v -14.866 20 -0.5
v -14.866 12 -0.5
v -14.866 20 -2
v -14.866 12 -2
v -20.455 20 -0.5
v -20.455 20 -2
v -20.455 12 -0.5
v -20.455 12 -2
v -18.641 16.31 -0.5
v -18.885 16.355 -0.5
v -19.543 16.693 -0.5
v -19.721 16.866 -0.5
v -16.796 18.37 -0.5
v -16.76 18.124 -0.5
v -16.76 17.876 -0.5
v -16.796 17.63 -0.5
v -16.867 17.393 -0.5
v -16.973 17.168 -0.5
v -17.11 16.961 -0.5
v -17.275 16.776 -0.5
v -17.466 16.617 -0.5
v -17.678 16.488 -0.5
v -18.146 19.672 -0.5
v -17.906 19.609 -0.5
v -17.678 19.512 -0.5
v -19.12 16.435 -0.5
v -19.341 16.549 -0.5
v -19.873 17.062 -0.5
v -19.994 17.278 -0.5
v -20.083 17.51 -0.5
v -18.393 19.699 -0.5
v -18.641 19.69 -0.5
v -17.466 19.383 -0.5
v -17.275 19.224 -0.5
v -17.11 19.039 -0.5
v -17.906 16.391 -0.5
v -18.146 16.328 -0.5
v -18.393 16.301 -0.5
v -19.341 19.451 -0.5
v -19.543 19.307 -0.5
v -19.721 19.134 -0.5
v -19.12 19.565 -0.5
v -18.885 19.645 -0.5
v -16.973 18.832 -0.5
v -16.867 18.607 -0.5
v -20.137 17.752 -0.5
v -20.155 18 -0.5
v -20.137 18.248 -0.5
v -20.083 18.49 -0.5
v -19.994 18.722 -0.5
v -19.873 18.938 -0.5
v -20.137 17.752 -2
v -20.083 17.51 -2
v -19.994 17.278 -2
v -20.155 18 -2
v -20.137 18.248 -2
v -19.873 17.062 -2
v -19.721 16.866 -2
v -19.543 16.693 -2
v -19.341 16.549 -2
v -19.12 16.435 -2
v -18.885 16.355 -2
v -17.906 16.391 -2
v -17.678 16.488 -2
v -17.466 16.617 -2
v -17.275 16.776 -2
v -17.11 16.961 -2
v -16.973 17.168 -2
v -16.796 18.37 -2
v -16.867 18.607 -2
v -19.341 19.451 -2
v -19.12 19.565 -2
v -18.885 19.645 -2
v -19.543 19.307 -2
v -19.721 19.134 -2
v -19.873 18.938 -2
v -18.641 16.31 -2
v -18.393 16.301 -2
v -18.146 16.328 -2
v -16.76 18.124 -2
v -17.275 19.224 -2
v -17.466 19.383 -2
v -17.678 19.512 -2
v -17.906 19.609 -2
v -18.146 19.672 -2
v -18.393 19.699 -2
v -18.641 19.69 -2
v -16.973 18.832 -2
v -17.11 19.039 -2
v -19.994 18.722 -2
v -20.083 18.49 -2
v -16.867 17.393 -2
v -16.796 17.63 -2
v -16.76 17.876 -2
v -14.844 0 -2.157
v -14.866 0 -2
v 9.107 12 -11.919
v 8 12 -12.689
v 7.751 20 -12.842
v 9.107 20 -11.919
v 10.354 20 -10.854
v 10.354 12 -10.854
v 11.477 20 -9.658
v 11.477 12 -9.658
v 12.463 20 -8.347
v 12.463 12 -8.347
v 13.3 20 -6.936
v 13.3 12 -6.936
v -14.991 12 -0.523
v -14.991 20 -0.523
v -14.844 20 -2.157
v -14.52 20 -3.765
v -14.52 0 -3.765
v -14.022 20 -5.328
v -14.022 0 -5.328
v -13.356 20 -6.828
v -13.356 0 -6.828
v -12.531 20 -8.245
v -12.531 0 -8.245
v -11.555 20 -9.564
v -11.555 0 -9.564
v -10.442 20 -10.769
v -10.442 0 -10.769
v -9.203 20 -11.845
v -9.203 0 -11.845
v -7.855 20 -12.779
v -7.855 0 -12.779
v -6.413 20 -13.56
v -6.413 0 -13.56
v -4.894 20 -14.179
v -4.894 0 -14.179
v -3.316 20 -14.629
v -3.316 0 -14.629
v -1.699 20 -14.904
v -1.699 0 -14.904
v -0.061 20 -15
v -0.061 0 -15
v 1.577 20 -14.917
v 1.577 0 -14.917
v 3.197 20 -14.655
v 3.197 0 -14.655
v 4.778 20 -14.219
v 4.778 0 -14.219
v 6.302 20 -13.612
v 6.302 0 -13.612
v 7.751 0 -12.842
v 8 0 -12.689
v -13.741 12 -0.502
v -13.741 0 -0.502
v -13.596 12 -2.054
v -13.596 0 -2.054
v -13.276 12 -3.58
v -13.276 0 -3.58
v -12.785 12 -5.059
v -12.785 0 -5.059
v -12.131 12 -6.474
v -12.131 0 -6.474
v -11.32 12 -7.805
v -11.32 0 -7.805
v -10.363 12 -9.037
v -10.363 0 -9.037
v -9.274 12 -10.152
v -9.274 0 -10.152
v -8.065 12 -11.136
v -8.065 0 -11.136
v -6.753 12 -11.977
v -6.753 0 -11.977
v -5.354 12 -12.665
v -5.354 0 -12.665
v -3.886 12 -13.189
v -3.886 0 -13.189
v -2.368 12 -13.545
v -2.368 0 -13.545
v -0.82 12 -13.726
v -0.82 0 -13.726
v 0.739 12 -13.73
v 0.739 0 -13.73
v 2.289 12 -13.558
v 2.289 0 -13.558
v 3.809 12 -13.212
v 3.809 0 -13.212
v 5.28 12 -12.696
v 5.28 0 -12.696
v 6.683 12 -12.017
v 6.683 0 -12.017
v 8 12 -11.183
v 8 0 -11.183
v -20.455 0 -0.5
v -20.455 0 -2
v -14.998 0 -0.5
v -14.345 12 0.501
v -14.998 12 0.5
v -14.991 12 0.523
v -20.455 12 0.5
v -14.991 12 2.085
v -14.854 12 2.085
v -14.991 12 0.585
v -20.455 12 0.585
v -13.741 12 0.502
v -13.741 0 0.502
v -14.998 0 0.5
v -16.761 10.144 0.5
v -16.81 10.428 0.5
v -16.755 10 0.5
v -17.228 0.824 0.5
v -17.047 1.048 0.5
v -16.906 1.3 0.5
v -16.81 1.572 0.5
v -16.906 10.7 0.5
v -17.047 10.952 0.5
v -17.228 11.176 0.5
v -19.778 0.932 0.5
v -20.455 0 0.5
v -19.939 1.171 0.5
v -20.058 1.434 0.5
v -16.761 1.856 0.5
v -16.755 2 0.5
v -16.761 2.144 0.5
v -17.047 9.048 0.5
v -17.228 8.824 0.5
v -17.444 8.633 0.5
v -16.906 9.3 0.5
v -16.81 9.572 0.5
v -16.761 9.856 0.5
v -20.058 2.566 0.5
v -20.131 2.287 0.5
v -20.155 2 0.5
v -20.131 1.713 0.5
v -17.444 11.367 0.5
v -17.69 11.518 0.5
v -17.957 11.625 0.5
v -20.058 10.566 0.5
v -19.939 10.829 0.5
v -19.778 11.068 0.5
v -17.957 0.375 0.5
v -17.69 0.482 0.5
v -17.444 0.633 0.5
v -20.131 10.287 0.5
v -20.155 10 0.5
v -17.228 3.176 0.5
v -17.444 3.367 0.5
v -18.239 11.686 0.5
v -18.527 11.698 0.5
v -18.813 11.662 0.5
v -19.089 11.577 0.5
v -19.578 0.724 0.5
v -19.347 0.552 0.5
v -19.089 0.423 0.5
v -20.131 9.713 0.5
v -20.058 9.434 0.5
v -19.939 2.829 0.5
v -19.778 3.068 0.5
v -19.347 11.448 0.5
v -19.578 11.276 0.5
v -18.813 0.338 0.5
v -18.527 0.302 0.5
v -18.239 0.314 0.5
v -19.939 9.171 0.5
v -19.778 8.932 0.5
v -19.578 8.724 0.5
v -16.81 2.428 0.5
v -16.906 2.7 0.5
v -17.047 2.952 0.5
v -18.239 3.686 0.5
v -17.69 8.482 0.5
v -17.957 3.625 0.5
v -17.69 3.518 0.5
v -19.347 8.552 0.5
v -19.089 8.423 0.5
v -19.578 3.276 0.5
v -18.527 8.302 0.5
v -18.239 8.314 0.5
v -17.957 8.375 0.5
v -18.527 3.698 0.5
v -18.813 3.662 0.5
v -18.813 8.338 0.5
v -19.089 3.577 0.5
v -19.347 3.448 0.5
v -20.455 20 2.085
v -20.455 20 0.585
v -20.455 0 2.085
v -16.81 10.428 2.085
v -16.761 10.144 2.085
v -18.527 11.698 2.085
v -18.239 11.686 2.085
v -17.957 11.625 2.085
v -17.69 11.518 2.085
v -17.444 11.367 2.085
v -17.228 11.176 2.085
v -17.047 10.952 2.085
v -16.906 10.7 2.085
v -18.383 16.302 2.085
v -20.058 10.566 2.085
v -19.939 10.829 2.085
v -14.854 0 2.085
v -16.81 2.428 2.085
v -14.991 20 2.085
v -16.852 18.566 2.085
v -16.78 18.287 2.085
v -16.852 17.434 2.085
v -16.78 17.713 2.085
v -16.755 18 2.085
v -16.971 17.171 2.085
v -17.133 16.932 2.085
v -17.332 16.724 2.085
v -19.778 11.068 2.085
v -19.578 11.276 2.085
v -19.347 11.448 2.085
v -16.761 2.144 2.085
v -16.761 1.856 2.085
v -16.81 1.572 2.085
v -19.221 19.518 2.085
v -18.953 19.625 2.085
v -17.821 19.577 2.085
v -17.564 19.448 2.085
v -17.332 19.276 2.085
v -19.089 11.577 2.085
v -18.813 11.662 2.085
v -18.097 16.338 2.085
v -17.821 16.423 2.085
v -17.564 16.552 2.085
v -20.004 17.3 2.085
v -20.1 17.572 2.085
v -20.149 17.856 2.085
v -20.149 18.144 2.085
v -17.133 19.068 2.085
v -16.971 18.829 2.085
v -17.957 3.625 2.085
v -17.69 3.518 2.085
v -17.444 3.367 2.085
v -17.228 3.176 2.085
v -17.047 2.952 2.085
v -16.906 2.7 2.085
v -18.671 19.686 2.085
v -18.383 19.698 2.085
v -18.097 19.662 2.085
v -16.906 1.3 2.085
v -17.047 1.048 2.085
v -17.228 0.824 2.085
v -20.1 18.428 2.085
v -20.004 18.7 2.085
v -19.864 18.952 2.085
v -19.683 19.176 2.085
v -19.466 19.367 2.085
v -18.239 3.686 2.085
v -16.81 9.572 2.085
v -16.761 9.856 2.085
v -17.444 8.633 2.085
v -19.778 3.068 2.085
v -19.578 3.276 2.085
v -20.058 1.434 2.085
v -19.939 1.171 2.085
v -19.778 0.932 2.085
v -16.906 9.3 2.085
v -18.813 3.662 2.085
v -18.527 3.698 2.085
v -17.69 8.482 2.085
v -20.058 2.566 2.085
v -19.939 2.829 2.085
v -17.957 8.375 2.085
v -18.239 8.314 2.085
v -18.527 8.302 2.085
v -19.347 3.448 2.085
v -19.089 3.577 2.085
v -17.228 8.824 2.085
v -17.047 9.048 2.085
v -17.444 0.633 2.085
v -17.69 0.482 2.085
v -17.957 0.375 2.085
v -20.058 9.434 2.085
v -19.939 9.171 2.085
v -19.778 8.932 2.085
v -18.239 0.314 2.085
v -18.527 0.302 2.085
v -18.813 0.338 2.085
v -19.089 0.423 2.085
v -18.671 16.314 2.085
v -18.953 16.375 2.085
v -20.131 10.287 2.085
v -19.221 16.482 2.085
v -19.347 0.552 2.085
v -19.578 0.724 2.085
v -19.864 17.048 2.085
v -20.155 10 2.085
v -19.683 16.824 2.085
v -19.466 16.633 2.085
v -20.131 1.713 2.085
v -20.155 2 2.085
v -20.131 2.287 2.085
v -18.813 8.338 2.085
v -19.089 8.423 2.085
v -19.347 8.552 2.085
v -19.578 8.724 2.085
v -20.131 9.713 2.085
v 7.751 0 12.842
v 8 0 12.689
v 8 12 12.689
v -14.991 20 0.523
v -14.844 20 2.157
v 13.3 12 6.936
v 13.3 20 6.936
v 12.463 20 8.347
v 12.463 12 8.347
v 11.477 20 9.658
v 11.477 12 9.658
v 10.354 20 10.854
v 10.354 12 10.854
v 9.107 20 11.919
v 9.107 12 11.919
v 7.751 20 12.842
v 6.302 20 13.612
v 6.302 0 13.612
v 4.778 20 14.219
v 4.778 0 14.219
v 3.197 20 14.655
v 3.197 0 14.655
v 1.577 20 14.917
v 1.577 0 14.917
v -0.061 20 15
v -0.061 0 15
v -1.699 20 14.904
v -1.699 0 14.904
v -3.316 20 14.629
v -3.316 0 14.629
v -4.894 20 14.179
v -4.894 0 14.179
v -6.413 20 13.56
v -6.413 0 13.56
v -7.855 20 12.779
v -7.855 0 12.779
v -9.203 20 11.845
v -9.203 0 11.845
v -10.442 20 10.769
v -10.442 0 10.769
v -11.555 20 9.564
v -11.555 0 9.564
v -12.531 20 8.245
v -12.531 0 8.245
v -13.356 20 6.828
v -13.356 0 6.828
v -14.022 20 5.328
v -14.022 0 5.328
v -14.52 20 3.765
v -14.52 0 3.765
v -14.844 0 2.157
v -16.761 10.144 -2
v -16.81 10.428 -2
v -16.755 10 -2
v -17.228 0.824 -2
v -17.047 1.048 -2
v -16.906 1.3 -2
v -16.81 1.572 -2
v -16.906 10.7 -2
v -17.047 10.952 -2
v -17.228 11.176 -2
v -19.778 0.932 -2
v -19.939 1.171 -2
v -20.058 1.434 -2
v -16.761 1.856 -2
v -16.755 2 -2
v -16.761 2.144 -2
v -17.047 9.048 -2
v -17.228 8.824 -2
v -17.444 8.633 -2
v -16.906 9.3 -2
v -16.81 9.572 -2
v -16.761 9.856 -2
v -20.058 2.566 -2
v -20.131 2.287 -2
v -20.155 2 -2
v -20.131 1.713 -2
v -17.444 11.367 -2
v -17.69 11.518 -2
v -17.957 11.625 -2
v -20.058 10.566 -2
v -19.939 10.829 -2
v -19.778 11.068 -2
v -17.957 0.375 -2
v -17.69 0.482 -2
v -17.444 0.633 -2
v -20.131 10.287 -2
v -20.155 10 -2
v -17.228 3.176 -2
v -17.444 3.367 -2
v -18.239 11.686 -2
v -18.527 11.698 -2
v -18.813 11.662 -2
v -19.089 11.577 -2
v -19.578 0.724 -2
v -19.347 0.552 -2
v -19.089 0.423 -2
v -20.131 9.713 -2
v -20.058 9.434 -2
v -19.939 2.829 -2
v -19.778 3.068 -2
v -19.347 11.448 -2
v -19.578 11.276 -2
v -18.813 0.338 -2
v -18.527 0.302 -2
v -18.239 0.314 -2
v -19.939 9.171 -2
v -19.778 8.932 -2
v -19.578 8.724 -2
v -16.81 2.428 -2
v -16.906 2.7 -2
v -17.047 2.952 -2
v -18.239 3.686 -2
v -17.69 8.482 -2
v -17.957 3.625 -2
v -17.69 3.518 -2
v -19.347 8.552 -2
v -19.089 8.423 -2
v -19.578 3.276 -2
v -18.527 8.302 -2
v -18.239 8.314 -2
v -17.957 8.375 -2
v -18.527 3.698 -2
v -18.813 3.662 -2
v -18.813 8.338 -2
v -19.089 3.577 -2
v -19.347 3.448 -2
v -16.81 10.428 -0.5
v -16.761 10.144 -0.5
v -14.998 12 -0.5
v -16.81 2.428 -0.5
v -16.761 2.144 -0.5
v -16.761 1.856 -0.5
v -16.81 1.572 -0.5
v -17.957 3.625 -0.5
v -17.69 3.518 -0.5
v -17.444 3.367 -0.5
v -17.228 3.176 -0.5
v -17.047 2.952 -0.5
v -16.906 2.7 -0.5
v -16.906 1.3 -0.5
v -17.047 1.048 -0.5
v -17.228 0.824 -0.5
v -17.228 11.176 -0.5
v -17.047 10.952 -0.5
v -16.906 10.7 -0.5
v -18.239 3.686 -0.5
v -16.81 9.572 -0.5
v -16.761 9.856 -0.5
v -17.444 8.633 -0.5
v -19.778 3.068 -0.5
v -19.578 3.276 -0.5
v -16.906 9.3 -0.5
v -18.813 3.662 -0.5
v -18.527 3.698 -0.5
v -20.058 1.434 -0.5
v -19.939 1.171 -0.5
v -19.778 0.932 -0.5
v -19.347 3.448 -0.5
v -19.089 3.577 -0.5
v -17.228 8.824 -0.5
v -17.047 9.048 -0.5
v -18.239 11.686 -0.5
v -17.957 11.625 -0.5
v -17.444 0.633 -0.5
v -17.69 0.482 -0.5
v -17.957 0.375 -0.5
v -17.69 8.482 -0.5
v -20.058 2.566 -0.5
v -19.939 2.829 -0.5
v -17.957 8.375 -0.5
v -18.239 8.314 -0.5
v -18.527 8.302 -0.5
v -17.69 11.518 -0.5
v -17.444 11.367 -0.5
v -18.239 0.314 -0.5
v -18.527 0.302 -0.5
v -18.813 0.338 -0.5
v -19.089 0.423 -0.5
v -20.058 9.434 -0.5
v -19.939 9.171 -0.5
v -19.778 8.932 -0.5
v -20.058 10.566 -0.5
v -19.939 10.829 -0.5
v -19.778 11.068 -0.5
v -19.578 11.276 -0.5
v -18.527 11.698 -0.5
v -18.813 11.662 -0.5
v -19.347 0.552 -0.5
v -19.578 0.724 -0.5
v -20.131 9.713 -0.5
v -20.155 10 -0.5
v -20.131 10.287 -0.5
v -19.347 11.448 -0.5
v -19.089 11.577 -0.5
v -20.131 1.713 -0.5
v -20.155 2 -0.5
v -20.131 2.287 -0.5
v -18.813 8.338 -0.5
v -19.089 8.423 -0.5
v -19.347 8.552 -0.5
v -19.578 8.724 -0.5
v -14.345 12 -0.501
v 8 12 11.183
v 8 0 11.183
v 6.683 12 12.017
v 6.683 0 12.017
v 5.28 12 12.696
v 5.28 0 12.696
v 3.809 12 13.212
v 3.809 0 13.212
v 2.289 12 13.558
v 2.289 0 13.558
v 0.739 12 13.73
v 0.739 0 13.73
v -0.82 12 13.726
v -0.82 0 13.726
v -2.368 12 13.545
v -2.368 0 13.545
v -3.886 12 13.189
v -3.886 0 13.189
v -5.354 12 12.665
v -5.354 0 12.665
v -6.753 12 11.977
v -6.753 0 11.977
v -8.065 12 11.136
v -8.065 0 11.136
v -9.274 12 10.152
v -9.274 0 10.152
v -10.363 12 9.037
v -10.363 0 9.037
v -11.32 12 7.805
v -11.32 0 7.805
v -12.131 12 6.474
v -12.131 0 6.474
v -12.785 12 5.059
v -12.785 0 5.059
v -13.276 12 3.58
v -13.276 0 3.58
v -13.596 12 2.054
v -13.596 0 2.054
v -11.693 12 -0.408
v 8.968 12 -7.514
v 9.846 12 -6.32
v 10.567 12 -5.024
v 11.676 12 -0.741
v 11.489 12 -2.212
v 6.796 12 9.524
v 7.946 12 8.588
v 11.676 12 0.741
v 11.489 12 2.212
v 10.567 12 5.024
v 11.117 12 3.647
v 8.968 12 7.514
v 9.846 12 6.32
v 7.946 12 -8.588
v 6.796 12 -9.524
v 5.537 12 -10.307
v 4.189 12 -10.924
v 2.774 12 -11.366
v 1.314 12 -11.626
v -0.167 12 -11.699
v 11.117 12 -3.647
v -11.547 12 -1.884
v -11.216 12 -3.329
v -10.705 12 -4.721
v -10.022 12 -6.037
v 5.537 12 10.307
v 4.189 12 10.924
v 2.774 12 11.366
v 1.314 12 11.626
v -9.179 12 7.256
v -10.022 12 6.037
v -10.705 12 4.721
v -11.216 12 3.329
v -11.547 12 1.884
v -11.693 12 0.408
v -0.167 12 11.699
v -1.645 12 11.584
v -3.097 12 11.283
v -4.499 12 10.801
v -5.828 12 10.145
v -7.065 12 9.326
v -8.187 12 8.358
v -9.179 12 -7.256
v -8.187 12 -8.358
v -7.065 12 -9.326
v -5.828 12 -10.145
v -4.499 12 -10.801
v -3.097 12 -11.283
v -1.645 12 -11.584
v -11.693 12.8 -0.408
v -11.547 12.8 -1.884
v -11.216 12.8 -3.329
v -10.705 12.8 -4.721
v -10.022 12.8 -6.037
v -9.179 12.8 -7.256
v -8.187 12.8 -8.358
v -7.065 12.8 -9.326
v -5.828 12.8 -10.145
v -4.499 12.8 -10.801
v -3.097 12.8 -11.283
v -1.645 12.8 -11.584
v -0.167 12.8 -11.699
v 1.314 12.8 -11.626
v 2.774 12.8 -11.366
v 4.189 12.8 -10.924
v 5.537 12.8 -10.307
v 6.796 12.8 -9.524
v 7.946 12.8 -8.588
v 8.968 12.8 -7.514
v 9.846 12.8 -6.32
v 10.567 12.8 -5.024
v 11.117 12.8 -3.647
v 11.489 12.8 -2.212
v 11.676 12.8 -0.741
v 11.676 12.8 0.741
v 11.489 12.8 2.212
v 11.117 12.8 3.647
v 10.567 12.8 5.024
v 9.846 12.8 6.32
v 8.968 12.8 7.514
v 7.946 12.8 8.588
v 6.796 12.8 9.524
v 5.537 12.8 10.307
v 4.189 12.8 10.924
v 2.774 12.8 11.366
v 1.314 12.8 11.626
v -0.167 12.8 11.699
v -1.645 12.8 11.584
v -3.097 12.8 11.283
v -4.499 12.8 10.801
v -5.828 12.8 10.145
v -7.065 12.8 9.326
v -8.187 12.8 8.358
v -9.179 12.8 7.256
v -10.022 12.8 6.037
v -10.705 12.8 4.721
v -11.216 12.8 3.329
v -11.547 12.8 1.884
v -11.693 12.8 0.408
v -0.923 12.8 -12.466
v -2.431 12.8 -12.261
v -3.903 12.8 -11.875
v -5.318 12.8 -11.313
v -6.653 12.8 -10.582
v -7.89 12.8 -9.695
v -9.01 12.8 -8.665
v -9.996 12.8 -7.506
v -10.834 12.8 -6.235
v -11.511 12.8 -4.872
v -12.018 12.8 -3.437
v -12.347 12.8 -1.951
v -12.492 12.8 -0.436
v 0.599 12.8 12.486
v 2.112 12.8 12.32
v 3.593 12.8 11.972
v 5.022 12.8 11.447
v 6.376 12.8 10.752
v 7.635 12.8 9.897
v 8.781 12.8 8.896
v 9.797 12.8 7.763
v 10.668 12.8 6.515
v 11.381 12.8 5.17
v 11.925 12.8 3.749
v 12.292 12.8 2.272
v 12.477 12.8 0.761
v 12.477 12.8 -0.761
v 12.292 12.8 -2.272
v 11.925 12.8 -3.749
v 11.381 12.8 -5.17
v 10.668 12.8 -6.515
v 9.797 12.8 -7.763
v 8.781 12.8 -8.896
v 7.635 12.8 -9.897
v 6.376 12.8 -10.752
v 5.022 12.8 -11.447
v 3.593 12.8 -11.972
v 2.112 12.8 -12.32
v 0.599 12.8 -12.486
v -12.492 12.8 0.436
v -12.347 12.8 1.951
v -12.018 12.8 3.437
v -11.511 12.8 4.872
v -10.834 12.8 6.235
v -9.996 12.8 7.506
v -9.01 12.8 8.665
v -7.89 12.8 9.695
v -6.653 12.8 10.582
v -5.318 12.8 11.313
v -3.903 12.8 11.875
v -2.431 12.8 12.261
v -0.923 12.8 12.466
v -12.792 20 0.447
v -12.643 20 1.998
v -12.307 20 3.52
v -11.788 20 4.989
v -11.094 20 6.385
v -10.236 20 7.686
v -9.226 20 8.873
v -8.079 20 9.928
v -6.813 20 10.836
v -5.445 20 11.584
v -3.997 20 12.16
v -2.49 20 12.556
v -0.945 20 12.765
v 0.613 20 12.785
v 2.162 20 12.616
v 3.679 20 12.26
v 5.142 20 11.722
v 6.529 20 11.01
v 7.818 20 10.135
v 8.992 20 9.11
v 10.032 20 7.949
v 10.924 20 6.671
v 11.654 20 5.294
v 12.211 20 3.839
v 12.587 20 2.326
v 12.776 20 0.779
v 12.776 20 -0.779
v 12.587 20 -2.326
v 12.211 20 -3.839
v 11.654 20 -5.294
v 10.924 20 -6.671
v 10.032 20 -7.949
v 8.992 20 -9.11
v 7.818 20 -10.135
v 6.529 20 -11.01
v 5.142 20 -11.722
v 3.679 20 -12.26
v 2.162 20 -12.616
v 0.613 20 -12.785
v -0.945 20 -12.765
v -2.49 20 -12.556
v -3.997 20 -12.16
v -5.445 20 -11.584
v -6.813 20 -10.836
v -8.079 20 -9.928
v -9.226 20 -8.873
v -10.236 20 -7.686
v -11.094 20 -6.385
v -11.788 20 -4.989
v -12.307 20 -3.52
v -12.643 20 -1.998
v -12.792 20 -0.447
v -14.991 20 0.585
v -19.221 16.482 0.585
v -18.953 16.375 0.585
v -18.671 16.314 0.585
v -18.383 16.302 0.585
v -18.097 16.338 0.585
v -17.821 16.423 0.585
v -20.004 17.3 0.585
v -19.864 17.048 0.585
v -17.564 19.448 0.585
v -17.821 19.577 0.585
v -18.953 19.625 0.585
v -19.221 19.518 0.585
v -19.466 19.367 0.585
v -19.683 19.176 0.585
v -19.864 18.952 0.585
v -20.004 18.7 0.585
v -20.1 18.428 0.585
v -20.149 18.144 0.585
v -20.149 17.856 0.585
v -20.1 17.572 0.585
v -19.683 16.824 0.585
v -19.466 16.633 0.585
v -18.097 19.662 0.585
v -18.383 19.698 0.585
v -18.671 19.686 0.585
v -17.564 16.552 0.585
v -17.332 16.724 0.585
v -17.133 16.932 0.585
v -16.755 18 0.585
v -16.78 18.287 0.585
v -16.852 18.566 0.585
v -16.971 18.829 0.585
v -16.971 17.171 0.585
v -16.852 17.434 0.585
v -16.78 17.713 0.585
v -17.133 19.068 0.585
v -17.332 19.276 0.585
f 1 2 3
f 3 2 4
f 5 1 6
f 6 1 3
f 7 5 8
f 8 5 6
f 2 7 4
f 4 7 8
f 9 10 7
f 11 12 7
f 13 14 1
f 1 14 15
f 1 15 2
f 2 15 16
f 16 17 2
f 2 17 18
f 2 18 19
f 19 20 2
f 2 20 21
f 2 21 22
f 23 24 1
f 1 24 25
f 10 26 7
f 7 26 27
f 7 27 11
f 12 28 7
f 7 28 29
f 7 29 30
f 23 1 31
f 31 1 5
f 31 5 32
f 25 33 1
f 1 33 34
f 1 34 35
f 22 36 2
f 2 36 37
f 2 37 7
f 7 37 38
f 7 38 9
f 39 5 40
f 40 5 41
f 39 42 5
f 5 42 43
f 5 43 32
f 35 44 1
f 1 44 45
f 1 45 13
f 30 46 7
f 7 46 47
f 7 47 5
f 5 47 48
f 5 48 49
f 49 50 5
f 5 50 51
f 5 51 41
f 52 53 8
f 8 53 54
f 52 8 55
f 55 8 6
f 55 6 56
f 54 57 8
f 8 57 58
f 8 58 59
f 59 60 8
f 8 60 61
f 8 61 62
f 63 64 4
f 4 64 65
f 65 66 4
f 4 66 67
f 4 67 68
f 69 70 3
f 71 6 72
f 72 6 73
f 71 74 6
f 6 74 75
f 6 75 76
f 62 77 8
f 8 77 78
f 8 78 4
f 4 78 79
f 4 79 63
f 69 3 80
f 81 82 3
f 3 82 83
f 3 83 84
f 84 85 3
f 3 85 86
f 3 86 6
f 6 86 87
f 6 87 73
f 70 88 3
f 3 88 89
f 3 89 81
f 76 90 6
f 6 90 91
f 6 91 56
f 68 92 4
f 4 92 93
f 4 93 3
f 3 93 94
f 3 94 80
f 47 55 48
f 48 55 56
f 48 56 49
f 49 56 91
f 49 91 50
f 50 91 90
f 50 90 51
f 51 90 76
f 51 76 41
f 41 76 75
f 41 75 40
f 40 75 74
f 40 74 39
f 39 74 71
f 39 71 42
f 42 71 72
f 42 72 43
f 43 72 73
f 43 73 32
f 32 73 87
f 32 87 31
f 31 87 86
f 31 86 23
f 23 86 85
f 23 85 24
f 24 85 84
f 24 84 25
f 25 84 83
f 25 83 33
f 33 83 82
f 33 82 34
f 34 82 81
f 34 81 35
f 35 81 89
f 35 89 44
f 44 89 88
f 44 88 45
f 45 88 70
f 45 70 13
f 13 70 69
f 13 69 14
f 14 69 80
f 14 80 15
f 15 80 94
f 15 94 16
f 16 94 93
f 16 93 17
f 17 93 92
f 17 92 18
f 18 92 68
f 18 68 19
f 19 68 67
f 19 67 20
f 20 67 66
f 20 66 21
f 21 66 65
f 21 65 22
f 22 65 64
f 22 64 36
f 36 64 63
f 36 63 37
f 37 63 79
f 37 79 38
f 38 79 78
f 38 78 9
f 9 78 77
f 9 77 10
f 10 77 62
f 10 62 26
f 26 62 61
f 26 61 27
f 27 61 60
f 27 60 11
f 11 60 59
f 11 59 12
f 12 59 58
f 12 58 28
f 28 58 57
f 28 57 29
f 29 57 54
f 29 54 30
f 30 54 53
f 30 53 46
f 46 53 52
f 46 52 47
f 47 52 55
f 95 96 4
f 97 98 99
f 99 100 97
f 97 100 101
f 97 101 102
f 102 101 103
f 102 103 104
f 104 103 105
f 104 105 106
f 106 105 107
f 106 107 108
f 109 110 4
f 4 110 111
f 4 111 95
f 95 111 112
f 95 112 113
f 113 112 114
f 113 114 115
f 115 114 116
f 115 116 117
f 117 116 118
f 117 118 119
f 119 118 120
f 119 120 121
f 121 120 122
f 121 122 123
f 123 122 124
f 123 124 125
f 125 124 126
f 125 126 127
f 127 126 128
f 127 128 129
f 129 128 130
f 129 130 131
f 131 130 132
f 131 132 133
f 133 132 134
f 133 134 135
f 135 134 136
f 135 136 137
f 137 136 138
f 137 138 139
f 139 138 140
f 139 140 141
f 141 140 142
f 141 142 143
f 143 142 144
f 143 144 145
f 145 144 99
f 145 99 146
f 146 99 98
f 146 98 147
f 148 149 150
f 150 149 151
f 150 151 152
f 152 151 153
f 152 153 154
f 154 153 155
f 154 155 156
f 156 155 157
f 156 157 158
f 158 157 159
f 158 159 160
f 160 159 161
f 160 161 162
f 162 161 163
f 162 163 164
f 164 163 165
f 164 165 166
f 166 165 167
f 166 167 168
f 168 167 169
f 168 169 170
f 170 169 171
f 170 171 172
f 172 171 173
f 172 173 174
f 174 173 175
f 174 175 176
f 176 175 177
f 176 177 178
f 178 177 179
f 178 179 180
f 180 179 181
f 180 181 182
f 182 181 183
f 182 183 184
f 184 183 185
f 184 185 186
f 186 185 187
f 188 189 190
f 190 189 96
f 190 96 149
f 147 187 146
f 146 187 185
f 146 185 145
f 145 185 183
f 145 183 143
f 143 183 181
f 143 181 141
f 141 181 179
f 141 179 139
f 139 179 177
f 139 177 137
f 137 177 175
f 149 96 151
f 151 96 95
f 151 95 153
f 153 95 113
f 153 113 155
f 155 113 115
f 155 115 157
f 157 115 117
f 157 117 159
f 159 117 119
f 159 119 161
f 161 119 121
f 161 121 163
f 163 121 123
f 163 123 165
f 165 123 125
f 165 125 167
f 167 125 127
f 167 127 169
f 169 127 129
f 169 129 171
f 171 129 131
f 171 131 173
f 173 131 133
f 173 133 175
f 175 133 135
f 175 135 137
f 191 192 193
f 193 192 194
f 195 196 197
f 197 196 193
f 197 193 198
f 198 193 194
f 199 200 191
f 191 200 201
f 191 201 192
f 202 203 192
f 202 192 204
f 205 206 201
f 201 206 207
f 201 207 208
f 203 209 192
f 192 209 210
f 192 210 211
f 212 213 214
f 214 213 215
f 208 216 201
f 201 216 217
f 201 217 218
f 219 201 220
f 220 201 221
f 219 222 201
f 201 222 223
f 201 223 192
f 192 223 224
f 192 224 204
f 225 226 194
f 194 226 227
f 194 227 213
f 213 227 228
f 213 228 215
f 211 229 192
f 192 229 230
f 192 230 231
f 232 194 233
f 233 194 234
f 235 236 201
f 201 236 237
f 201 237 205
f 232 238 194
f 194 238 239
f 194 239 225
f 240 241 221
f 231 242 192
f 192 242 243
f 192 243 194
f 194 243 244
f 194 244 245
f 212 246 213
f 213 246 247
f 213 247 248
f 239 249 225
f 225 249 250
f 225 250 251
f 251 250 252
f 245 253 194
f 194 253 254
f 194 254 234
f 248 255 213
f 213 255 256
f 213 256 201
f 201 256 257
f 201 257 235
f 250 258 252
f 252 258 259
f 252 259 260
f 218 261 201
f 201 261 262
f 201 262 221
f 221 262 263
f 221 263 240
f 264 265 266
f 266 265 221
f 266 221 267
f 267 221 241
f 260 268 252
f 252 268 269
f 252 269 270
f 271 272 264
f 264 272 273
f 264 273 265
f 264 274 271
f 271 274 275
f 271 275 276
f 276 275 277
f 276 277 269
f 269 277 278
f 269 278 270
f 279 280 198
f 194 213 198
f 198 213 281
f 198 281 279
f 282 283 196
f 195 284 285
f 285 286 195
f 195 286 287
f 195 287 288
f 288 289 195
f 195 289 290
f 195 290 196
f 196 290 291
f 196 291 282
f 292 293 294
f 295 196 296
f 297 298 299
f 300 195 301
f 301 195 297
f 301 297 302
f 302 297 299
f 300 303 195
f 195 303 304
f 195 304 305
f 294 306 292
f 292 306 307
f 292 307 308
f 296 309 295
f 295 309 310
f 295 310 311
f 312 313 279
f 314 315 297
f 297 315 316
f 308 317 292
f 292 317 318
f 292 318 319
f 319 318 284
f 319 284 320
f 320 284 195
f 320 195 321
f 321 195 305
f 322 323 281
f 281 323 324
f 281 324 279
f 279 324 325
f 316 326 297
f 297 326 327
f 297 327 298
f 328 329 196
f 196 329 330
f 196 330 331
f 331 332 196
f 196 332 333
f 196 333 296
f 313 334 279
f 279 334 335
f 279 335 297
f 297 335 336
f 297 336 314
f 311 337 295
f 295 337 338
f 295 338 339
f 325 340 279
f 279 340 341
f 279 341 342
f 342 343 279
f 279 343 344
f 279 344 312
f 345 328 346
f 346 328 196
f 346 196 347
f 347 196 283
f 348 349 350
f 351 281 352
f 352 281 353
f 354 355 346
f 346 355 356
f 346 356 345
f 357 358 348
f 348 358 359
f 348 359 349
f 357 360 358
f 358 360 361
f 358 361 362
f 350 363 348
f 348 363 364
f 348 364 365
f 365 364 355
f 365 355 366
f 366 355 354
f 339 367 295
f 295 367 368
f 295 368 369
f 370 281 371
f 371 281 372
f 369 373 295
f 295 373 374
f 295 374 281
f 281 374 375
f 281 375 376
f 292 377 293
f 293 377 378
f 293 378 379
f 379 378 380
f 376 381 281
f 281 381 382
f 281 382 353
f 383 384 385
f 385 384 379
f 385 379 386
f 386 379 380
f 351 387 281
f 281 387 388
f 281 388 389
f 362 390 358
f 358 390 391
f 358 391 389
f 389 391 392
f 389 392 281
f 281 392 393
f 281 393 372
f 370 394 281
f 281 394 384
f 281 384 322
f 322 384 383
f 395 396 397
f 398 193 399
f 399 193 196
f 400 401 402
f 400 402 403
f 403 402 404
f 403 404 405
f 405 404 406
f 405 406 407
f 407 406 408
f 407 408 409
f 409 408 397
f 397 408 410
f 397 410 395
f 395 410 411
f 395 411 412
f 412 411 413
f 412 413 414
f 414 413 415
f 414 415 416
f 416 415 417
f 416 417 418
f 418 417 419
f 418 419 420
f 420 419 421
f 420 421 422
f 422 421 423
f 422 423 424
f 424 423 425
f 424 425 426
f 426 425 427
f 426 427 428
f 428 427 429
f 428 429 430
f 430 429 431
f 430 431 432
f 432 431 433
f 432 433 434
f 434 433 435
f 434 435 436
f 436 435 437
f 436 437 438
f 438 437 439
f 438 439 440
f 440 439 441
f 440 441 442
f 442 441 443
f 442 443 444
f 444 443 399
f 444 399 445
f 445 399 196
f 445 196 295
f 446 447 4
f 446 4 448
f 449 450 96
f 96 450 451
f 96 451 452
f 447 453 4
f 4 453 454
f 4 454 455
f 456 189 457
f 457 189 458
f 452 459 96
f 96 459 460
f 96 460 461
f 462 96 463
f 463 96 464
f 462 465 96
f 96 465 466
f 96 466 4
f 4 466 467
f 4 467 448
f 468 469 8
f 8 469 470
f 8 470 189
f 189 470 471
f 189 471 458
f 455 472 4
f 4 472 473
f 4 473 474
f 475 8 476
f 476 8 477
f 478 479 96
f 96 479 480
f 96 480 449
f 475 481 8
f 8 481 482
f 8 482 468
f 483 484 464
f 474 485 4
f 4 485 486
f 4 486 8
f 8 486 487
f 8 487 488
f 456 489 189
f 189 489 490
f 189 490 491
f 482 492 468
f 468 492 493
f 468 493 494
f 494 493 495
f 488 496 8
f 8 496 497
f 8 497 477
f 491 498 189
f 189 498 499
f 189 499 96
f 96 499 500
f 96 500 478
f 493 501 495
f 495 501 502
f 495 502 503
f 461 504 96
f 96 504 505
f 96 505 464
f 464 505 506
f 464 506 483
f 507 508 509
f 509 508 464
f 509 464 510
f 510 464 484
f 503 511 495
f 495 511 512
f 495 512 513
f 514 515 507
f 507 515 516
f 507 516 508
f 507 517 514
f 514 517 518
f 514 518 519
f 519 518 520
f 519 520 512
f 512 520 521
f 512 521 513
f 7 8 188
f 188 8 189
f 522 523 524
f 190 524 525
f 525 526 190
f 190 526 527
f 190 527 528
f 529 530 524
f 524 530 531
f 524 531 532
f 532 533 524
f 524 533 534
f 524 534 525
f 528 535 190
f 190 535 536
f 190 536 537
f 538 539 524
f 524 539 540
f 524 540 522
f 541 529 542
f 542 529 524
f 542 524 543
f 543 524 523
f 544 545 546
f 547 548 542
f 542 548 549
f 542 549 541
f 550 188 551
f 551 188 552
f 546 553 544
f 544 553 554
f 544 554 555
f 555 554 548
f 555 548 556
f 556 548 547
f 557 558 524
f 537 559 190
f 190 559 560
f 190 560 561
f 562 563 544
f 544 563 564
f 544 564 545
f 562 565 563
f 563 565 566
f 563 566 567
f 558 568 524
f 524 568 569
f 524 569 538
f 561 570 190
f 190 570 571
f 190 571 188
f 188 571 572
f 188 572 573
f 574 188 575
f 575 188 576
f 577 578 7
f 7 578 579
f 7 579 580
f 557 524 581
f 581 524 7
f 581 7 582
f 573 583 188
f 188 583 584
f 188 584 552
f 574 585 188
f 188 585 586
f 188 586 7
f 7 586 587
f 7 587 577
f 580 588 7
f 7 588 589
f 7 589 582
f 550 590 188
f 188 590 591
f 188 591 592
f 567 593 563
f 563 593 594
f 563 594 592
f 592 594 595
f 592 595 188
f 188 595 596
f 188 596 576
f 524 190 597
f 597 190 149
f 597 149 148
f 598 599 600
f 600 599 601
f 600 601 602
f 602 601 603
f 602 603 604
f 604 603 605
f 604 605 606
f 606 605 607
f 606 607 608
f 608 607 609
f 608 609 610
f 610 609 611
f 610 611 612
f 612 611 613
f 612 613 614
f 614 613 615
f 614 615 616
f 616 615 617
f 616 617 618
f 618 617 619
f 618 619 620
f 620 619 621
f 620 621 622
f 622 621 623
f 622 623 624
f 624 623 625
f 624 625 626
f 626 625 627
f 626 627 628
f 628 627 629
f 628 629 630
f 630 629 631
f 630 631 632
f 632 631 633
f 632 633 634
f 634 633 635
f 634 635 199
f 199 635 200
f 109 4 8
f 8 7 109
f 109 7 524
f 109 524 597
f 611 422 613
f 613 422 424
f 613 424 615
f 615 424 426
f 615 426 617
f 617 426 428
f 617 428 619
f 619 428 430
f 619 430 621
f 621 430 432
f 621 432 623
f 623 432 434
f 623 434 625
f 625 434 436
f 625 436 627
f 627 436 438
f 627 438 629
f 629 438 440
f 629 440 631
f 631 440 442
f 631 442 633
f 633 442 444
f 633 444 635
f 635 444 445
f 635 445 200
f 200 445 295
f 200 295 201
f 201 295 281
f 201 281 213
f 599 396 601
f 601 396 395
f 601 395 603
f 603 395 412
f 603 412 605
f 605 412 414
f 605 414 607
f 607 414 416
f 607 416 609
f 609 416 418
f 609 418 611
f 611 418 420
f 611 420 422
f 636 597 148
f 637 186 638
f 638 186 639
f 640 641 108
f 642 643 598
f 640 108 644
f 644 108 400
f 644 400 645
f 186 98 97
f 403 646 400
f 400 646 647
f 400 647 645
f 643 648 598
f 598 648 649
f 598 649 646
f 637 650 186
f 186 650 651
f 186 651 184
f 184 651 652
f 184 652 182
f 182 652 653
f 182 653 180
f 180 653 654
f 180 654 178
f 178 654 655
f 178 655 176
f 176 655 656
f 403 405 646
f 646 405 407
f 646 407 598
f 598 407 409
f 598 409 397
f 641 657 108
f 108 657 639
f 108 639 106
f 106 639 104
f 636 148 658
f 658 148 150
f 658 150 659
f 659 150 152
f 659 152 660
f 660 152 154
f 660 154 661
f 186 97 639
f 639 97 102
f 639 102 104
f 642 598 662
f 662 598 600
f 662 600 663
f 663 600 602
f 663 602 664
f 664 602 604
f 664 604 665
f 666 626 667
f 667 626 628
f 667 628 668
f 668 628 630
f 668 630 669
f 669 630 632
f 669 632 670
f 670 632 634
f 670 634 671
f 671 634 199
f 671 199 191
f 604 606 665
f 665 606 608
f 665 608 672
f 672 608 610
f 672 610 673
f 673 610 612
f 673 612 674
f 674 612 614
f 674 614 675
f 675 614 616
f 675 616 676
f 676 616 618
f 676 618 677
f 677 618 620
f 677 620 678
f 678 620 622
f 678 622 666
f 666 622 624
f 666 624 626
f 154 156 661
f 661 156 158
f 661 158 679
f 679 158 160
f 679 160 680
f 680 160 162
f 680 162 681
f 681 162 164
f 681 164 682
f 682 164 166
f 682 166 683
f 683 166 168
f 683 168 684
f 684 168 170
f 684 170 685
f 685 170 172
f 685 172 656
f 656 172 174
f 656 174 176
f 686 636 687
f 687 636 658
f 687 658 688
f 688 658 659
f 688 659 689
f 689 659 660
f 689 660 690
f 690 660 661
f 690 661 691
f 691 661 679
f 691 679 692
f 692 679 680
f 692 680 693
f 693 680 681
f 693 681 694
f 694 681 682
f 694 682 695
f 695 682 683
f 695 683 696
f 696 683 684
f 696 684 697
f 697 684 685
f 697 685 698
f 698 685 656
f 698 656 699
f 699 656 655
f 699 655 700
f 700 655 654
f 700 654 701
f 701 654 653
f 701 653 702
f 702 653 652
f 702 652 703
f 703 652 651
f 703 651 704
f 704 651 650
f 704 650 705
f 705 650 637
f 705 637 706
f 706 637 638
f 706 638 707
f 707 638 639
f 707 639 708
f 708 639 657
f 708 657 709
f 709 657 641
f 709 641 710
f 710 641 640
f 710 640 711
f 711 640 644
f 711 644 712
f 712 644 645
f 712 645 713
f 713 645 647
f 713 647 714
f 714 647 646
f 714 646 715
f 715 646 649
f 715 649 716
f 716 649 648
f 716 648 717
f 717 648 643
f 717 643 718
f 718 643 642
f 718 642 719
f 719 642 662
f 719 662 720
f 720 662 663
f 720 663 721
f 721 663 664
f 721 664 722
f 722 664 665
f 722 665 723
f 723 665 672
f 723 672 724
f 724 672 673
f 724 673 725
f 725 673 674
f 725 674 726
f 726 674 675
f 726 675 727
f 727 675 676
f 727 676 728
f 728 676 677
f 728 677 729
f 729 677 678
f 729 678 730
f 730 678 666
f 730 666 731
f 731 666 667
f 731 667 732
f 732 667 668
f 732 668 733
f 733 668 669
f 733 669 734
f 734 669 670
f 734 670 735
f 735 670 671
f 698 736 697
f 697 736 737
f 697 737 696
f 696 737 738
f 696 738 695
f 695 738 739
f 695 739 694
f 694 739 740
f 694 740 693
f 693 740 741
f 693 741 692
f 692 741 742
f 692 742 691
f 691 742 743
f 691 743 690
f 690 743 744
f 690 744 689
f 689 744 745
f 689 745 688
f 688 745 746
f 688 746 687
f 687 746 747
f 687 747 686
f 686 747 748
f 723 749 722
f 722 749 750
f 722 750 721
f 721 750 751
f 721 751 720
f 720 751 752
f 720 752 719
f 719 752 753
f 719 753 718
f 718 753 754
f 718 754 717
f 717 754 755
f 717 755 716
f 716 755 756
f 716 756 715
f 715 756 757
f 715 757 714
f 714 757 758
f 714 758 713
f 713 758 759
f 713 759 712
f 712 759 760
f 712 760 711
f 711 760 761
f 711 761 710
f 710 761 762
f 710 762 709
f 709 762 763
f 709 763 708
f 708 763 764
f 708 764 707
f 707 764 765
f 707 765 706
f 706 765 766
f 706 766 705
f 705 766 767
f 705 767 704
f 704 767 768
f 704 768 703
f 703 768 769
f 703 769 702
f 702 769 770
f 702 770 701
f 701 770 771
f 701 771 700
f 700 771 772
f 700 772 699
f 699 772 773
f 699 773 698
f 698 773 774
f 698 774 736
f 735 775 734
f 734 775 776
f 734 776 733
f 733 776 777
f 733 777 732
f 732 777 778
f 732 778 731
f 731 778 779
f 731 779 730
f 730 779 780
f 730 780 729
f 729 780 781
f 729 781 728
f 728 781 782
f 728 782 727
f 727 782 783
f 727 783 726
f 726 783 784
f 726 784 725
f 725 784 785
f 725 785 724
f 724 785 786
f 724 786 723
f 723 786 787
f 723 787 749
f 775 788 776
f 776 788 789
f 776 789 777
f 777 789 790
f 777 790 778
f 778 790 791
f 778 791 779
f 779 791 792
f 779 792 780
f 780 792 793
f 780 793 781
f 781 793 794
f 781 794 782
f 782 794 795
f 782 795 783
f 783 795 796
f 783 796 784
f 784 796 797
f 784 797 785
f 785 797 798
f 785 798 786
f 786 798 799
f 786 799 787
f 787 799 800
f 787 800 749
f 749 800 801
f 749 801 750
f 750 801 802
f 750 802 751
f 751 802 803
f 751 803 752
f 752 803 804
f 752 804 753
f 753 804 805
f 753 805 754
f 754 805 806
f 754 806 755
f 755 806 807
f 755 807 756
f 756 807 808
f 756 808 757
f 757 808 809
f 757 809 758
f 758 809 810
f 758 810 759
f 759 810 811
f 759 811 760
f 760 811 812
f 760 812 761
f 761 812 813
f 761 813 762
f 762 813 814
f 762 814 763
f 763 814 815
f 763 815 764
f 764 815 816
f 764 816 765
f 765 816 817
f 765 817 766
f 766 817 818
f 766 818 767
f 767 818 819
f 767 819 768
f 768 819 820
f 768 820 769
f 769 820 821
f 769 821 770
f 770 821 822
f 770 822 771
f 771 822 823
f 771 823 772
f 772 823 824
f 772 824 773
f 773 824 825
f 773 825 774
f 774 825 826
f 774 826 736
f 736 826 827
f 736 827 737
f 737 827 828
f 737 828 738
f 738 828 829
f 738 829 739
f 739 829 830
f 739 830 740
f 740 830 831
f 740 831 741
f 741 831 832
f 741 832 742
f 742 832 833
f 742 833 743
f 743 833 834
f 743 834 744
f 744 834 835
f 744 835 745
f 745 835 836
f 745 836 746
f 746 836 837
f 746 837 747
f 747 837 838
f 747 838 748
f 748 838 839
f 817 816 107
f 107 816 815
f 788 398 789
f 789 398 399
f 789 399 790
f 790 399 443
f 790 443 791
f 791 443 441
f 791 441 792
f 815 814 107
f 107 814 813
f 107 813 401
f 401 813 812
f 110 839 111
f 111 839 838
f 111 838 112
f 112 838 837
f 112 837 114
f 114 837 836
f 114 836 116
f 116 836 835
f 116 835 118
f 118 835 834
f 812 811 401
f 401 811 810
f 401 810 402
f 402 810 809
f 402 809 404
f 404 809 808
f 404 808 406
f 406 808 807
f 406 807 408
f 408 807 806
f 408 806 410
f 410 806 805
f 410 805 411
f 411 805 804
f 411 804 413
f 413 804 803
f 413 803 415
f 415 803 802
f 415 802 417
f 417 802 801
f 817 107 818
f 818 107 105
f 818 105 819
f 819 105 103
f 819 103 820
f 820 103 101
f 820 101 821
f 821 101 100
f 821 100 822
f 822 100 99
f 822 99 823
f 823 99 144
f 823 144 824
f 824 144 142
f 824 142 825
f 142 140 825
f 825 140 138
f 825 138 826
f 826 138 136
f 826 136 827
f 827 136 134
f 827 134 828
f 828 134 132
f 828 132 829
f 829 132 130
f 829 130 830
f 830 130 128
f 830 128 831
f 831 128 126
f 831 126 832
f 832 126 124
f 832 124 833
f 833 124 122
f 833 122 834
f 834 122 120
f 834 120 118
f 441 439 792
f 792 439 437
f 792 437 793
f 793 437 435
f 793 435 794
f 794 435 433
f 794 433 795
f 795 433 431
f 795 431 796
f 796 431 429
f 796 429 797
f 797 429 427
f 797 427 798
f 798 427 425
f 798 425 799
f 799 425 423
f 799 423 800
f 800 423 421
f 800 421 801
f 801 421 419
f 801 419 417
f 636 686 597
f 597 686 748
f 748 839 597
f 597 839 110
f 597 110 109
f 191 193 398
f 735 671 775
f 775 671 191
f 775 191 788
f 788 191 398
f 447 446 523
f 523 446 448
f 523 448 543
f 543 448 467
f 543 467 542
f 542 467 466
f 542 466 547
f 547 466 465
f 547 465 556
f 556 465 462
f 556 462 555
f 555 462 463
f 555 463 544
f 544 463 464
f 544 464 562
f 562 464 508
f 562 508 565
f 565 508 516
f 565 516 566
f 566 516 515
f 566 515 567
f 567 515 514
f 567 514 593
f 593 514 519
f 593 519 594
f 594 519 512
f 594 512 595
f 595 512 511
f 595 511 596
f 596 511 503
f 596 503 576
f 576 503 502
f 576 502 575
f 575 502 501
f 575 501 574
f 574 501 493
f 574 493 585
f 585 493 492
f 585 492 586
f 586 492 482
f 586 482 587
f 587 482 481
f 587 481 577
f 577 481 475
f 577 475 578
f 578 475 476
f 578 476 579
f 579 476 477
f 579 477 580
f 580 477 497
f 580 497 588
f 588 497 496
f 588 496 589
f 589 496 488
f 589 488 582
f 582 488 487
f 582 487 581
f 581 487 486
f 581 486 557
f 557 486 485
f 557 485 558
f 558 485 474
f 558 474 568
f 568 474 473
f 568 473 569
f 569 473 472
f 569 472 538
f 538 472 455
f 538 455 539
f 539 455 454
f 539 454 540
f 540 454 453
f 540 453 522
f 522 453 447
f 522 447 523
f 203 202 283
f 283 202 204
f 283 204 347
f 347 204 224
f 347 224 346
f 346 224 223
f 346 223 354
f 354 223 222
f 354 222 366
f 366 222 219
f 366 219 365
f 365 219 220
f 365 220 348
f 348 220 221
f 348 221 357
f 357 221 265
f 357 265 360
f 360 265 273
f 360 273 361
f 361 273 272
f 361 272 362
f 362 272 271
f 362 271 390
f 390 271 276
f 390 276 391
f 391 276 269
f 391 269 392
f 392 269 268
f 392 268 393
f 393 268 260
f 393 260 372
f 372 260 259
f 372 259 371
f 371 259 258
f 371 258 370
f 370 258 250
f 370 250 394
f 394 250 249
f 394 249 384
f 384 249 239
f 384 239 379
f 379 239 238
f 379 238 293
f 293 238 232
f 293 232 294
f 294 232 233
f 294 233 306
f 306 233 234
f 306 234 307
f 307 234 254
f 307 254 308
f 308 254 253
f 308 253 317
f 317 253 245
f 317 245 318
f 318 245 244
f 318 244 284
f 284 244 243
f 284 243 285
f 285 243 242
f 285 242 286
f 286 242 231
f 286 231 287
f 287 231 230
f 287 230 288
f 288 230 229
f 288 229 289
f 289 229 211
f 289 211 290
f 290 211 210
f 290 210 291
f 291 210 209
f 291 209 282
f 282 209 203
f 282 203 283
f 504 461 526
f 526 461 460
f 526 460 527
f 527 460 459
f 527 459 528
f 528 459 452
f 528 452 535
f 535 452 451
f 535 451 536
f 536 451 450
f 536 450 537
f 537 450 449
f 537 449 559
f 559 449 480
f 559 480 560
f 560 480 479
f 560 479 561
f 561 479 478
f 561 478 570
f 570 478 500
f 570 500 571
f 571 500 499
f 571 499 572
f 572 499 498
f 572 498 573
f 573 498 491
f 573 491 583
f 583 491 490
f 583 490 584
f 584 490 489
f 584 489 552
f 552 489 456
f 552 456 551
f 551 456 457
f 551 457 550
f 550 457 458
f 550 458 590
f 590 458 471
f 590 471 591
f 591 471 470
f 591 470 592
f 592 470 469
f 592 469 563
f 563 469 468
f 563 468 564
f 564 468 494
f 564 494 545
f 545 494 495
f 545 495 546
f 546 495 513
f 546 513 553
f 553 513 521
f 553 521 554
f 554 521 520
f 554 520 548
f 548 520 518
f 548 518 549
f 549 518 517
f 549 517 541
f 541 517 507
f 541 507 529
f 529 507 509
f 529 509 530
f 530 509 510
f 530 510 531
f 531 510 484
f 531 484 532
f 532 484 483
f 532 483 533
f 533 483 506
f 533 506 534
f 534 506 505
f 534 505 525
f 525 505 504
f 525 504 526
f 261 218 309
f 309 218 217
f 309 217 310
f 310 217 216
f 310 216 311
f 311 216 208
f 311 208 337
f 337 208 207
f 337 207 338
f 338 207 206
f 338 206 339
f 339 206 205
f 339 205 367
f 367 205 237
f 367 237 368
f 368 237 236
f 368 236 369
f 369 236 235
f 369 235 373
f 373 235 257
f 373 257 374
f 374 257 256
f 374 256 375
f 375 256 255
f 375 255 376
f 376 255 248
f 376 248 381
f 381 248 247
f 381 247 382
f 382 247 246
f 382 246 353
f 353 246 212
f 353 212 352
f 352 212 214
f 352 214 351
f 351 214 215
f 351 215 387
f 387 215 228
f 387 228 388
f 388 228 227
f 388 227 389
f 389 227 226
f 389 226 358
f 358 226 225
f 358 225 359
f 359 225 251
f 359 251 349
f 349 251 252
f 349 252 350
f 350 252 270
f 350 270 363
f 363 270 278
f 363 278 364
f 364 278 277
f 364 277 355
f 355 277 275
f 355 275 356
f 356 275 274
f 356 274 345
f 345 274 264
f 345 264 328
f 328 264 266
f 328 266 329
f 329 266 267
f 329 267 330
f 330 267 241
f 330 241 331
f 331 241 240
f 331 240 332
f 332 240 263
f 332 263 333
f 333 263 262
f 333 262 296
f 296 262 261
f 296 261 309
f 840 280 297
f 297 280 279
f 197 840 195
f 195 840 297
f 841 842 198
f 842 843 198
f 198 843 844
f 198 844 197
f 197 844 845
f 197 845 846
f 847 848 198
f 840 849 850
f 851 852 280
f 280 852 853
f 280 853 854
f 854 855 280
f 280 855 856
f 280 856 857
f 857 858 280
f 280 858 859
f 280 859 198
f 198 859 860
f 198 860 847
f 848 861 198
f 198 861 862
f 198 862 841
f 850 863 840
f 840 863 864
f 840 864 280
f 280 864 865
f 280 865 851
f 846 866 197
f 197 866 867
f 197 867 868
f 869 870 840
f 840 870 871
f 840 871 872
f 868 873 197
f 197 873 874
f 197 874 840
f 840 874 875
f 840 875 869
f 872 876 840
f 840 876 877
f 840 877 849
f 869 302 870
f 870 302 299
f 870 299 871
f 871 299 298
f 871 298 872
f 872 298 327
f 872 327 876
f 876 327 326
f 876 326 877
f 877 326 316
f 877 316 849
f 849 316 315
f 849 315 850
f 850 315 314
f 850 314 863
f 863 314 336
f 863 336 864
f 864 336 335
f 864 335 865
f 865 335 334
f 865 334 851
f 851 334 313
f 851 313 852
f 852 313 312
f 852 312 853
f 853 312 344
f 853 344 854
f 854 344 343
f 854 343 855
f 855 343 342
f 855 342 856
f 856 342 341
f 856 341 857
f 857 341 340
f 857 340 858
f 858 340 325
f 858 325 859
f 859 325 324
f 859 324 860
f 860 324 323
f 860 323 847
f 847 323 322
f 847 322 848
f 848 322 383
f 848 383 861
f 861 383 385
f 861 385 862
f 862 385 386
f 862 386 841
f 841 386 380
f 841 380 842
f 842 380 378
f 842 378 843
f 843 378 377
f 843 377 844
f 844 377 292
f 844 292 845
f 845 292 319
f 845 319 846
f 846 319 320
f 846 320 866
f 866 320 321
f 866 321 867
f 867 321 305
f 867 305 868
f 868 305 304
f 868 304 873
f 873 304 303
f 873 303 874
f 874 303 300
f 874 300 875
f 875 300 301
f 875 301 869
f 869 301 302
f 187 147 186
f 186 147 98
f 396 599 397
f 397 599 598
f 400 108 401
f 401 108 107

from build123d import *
from build123d.topology import SkipClean

# Parameters (mm, degrees)
BOSS_EXTRUDE1_DEPTH      = 12
REVOLVE1_ANGLE           = 268
REVOLVE1_OTHER_WAY_ANGLE = 88
CUT_EXTRUDE1_DEPTH       = 34.277843841
CUT_EXTRUDE1_DEPTH_BACK  = 34.277843841
SKETCH4_R                = 1.7
SKETCH5_W                = 5.464329862
SKETCH5_H                = 8
SKETCH5_R                = 1.7
BOSS_EXTRUDE3_DEPTH      = 1.5
SKETCH6_W                = 5.58912352
SKETCH6_H                = 8
SKETCH6_R                = 1.7
BOSS_EXTRUDE6_DEPTH      = 1.5
SKETCH7_W                = 13.395261238
SKETCH7_H                = 27.001129241
CUT_EXTRUDE2_DEPTH       = 12
SKETCH8_W                = 6.997667241
SKETCH8_H                = 27.404272266
CUT_EXTRUDE3_DEPTH       = 10


with BuildPart() as part:
    # Sketch1 → Boss-Extrude1 (new body)
    with BuildSketch(Plane(origin=(0, 0, 0), x_dir=(1, 0, 0), z_dir=(0, 1, 0))):
        with BuildLine():
            Line((-13.740839561, 0.501824818), (-14.997715427, 0.5))
            Line((-14.997715427, 0.5), (-20.455192267, 0.5))
            Line((-20.455192267, 0.5), (-20.455192267, 2))
            Line((-20.455192267, 2), (-14.866068747, 2))
            ThreePointArc((-14.866068747, 2), (-12.460231809, 8.351204898), (-7.5, 12.990381057))
            ThreePointArc((-7.5, 12.990381057), (15, 0), (-7.5, -12.990381057))
            ThreePointArc((-7.5, -12.990381057), (-12.436410154, -8.386638331), (-14.85444215, -2.084597902))
            Line((-14.85444215, -2.084597902), (-20.455192267, -2.084597902))
            Line((-20.455192267, -2.084597902), (-20.455192267, -0.5))
            Line((-20.455192267, -0.5), (-14.997715427, -0.5))
            Line((-14.997715427, -0.5), (-13.740839561, -0.501824818))
            ThreePointArc((-13.740839561, -0.501824818), (-11.780388739, -7.09118757), (-6.875, -11.907849302))
            ThreePointArc((-6.875, -11.907849302), (13.75, 0), (-6.875, 11.907849302))
            ThreePointArc((-6.875, 11.907849302), (-11.780388739, 7.09118757), (-13.740839561, 0.501824818))
        make_face()
    extrude(amount=BOSS_EXTRUDE1_DEPTH)

    # Sketch3 → Revolve1 (revolve)
    with BuildSketch(Plane(origin=(0, 0, 0), x_dir=(0, 0, -1), z_dir=(1, 0, 0))):
        Polygon((-15, 12), (-15, 20), (-12.8, 20), (-12.5, 12.8), (-11.7, 12.8), (-11.7, 12), (-12.2, 12), align=None)
    revolve(axis=Axis((0, 12, 0), (0, 1, 0)), revolution_arc=REVOLVE1_ANGLE)

    # Sketch3 → Revolve1 other way (revolve)
    with SkipClean():  # the faces are left unmerged after this step: merging them gives an invalid solid
        with BuildSketch(Plane(origin=(0, 0, 0), x_dir=(0, 0, -1), z_dir=(1, 0, 0))):
            Polygon((-15, 12), (-15, 20), (-12.8, 20), (-12.5, 12.8), (-11.7, 12.8), (-11.7, 12), (-12.2, 12), align=None)
        revolve(axis=Axis((0, 12, 0), (0, -1, 0)), revolution_arc=REVOLVE1_OTHER_WAY_ANGLE)
    add(part.part.scale(1), mode=Mode.REPLACE)  # the faces are merged on a copy

    # Sketch4 → Cut-Extrude1 (cut, two sides: drawn at the far end of the back side and taken through both)
    with BuildSketch(Plane(origin=(0, 0, -2), x_dir=(-1, 0, 0), z_dir=(0, 0, -1)).offset(-CUT_EXTRUDE1_DEPTH_BACK)):
        with Locations((18.455192267, 10)):
            Circle(SKETCH4_R)
        with Locations((18.455192267, 2)):
            Circle(SKETCH4_R)
    extrude(amount=CUT_EXTRUDE1_DEPTH + CUT_EXTRUDE1_DEPTH_BACK, mode=Mode.SUBTRACT)

    # Sketch5 → Boss-Extrude3 (add)
    with BuildSketch(Plane.XY.offset(2.084597902)):
        with Locations((-17.723027336, 16)):
            Rectangle(SKETCH5_W, SKETCH5_H)
        with Locations((-18.455192267, 18)):
            Circle(SKETCH5_R, mode=Mode.SUBTRACT)
    extrude(amount=-BOSS_EXTRUDE3_DEPTH)

    # Sketch7 → Cut-Extrude2 (cut)
    with BuildSketch(Plane.XZ):
        with Locations((14.697569852, -0.811948768)):
            Rectangle(SKETCH7_W, SKETCH7_H)
    extrude(amount=-CUT_EXTRUDE2_DEPTH, mode=Mode.SUBTRACT)

    # Sketch8 → Cut-Extrude3 (cut)
    with BuildSketch(Plane(origin=(0, 20, 0), x_dir=(1, 0, 0), z_dir=(0, 1, 0))):
        with Locations((16.798833621, 0.586396696)):
            Rectangle(SKETCH8_W, SKETCH8_H)
    extrude(amount=-CUT_EXTRUDE3_DEPTH, mode=Mode.SUBTRACT)


with BuildPart() as body_2:
    # Sketch6 → Boss-Extrude6 (new body)
    with BuildSketch(Plane(origin=(0, 0, -2), x_dir=(-1, 0, 0), z_dir=(0, 0, -1))):
        with Locations((17.660630507, 16)):
            Rectangle(SKETCH6_W, SKETCH6_H)
        with Locations((18.455192267, 18)):
            Circle(SKETCH6_R, mode=Mode.SUBTRACT)
    extrude(amount=-BOSS_EXTRUDE6_DEPTH)


solid = Compound([part.part, body_2.part])
